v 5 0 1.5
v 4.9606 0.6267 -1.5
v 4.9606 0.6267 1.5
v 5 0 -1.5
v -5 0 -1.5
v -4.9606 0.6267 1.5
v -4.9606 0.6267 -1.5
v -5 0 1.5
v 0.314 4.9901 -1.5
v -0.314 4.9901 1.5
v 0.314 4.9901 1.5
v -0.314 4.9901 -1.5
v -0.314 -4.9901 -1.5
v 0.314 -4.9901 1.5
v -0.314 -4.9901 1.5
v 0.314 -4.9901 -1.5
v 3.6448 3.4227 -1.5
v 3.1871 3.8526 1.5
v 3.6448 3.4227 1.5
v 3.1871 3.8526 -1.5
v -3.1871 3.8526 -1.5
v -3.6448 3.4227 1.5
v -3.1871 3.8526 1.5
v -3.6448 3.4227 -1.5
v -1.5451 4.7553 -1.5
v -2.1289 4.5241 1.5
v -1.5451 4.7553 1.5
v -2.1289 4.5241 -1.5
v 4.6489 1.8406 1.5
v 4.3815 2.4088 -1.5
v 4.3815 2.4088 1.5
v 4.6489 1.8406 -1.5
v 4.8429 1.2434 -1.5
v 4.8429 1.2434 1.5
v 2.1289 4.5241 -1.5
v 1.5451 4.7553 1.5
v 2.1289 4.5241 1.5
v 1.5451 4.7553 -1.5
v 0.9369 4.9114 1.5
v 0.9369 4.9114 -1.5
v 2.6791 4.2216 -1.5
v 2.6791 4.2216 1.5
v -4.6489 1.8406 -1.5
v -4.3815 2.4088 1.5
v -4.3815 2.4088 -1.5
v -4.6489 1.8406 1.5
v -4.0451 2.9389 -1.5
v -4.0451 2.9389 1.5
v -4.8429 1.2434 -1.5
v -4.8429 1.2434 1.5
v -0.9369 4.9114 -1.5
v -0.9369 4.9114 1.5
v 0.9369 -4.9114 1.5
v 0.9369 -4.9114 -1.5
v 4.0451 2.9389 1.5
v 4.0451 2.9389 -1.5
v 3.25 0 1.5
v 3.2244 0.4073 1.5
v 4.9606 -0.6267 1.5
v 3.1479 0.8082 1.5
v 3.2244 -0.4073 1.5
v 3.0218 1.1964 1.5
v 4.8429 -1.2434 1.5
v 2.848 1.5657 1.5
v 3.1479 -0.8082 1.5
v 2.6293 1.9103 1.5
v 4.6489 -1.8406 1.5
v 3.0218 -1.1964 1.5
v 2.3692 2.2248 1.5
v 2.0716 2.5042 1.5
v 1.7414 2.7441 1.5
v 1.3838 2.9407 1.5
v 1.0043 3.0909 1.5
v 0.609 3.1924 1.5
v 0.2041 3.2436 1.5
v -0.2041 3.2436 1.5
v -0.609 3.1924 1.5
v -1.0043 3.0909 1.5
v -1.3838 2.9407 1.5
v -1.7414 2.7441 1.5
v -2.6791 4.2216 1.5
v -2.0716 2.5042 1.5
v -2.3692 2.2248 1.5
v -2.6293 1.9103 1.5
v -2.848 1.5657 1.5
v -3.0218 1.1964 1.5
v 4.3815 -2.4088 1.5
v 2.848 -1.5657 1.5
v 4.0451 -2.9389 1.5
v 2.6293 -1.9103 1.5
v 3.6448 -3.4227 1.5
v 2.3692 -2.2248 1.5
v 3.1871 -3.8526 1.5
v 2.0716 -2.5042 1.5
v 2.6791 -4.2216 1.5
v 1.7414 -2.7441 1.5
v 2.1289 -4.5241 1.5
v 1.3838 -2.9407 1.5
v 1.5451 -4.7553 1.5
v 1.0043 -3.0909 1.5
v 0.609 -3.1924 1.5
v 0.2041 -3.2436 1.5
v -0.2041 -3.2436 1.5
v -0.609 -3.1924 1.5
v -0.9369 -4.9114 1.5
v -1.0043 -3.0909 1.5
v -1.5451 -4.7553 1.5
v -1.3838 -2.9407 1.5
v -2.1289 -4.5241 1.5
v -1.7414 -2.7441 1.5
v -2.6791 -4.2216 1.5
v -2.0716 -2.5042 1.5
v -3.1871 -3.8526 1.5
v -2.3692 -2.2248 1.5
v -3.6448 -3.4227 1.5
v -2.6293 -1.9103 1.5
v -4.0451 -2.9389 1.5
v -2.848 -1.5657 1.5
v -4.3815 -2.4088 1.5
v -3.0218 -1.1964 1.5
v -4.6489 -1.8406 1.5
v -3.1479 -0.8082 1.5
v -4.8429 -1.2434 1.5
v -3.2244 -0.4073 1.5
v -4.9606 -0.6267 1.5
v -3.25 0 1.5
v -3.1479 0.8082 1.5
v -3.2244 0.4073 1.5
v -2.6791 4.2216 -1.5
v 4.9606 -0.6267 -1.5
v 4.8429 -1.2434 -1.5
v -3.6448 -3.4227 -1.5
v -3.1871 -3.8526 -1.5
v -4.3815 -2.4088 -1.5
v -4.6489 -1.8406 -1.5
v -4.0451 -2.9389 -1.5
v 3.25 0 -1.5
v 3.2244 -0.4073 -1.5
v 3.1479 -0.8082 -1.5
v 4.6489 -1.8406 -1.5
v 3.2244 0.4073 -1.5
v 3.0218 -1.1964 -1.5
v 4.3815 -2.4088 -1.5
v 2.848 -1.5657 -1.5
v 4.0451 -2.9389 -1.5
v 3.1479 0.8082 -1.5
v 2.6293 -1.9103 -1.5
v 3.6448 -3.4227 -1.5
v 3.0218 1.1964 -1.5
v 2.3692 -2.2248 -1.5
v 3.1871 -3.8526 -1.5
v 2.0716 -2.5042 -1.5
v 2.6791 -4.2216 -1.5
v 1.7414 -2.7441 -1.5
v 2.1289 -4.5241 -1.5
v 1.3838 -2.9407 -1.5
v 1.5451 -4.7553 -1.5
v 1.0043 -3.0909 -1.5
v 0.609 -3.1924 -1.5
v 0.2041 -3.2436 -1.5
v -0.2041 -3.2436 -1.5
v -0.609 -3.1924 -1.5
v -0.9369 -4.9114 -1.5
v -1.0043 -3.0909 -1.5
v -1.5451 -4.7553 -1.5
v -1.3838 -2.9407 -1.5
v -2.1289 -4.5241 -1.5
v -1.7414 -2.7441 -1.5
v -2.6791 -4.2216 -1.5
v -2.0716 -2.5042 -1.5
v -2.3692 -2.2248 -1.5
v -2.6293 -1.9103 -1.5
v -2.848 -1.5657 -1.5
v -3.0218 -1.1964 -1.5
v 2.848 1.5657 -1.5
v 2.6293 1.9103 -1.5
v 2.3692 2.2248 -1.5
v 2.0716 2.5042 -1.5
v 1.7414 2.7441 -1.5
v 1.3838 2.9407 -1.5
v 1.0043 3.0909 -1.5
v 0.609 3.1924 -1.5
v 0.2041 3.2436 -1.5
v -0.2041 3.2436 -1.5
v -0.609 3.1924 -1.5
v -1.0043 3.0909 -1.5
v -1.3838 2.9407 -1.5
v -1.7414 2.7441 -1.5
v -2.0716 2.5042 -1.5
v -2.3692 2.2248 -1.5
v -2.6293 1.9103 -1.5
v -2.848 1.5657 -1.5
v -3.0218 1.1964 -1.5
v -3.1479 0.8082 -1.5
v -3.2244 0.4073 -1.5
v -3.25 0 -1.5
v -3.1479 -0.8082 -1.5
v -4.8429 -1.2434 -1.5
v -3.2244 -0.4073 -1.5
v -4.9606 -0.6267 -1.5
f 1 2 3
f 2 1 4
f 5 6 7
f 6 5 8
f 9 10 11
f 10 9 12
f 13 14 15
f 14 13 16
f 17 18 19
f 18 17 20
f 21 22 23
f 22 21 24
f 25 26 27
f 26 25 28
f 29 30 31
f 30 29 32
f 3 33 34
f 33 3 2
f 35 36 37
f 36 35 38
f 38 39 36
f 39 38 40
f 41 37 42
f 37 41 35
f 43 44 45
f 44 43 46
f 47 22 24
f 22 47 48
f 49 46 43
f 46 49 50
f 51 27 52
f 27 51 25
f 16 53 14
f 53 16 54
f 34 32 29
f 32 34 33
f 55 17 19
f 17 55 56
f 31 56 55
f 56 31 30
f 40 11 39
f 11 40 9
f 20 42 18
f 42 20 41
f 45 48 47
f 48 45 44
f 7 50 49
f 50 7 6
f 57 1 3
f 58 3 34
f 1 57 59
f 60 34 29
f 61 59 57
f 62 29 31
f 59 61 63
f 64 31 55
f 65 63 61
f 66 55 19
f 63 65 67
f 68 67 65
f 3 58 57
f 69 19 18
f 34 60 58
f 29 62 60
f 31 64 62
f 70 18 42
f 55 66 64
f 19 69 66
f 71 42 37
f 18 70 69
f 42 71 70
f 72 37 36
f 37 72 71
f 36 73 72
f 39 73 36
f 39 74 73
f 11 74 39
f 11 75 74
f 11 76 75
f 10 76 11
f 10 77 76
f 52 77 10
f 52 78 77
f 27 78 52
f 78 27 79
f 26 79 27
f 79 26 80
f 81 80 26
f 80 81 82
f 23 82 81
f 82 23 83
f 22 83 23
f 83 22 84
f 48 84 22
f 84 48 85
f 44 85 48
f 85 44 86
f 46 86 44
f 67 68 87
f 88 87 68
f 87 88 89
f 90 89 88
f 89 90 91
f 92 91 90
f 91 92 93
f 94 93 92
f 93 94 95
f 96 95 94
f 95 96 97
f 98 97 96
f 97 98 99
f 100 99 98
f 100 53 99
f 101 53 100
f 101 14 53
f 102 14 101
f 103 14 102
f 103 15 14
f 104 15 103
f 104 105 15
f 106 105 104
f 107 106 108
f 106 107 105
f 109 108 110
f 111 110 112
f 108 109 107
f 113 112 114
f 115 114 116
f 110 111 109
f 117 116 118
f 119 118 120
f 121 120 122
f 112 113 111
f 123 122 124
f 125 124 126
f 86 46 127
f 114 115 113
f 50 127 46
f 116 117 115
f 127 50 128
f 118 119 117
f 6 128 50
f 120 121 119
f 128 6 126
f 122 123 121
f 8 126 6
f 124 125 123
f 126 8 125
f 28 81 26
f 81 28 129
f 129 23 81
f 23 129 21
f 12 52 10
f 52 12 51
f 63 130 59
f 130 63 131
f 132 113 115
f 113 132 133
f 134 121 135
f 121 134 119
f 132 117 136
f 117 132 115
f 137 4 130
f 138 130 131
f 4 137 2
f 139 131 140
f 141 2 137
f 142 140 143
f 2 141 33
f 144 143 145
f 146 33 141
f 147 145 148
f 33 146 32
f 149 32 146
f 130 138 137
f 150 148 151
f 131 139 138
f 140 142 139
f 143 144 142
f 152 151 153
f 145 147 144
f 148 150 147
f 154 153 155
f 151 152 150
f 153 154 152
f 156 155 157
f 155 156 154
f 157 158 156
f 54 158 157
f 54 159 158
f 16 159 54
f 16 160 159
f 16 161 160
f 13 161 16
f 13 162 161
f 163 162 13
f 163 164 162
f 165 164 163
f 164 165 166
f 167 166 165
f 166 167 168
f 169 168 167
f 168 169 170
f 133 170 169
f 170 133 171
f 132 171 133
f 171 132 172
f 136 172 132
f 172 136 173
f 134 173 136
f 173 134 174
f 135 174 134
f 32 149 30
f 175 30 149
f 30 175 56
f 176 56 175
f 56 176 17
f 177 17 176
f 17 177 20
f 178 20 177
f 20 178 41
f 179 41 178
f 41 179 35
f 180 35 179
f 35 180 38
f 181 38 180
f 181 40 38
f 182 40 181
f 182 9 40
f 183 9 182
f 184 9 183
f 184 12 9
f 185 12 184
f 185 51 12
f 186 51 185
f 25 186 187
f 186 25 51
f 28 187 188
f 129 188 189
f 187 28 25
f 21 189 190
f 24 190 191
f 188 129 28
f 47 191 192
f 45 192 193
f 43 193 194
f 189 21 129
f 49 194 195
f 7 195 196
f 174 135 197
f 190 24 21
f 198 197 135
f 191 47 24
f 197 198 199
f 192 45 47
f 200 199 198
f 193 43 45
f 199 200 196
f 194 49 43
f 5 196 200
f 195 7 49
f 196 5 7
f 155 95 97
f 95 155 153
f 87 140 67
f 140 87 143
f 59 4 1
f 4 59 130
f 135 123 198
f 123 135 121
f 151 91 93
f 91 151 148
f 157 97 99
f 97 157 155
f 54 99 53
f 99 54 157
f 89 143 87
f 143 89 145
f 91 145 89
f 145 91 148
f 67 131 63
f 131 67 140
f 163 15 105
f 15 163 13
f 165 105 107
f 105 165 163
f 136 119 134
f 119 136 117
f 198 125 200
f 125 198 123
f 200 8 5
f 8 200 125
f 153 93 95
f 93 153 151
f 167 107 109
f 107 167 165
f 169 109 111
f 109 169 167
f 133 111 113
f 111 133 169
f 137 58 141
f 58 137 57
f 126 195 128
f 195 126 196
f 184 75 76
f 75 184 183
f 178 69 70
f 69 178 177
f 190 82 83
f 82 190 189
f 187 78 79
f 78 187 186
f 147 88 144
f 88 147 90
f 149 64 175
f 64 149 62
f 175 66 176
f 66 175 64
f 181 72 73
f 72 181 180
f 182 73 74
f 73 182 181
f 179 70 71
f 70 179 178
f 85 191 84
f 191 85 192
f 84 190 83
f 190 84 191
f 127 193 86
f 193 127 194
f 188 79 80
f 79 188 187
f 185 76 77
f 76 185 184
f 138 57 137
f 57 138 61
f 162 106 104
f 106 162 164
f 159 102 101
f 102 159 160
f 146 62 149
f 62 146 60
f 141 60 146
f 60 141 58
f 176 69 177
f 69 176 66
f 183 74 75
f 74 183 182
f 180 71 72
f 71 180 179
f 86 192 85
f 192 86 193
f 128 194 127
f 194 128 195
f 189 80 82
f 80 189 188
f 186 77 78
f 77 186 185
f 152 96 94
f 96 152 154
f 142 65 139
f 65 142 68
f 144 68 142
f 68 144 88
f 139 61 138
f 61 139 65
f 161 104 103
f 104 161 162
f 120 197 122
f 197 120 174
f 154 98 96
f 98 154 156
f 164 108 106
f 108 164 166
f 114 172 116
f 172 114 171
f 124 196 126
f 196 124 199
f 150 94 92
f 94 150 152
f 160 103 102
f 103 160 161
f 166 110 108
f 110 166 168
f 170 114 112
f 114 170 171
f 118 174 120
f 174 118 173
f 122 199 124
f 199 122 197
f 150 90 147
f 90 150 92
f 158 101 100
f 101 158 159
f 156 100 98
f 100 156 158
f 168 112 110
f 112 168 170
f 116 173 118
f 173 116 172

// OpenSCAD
$fn = 50;


difference() {
	union() {
		translate(v = [0, 0, -1.5000000000]) {
			cylinder(h = 3, r = 5.0000000000);
		}
	}
	union() {
		translate(v = [0, 0, -100.0000000000]) {
			cylinder(h = 200, r = 3.2500000000);
		}
	}
}
